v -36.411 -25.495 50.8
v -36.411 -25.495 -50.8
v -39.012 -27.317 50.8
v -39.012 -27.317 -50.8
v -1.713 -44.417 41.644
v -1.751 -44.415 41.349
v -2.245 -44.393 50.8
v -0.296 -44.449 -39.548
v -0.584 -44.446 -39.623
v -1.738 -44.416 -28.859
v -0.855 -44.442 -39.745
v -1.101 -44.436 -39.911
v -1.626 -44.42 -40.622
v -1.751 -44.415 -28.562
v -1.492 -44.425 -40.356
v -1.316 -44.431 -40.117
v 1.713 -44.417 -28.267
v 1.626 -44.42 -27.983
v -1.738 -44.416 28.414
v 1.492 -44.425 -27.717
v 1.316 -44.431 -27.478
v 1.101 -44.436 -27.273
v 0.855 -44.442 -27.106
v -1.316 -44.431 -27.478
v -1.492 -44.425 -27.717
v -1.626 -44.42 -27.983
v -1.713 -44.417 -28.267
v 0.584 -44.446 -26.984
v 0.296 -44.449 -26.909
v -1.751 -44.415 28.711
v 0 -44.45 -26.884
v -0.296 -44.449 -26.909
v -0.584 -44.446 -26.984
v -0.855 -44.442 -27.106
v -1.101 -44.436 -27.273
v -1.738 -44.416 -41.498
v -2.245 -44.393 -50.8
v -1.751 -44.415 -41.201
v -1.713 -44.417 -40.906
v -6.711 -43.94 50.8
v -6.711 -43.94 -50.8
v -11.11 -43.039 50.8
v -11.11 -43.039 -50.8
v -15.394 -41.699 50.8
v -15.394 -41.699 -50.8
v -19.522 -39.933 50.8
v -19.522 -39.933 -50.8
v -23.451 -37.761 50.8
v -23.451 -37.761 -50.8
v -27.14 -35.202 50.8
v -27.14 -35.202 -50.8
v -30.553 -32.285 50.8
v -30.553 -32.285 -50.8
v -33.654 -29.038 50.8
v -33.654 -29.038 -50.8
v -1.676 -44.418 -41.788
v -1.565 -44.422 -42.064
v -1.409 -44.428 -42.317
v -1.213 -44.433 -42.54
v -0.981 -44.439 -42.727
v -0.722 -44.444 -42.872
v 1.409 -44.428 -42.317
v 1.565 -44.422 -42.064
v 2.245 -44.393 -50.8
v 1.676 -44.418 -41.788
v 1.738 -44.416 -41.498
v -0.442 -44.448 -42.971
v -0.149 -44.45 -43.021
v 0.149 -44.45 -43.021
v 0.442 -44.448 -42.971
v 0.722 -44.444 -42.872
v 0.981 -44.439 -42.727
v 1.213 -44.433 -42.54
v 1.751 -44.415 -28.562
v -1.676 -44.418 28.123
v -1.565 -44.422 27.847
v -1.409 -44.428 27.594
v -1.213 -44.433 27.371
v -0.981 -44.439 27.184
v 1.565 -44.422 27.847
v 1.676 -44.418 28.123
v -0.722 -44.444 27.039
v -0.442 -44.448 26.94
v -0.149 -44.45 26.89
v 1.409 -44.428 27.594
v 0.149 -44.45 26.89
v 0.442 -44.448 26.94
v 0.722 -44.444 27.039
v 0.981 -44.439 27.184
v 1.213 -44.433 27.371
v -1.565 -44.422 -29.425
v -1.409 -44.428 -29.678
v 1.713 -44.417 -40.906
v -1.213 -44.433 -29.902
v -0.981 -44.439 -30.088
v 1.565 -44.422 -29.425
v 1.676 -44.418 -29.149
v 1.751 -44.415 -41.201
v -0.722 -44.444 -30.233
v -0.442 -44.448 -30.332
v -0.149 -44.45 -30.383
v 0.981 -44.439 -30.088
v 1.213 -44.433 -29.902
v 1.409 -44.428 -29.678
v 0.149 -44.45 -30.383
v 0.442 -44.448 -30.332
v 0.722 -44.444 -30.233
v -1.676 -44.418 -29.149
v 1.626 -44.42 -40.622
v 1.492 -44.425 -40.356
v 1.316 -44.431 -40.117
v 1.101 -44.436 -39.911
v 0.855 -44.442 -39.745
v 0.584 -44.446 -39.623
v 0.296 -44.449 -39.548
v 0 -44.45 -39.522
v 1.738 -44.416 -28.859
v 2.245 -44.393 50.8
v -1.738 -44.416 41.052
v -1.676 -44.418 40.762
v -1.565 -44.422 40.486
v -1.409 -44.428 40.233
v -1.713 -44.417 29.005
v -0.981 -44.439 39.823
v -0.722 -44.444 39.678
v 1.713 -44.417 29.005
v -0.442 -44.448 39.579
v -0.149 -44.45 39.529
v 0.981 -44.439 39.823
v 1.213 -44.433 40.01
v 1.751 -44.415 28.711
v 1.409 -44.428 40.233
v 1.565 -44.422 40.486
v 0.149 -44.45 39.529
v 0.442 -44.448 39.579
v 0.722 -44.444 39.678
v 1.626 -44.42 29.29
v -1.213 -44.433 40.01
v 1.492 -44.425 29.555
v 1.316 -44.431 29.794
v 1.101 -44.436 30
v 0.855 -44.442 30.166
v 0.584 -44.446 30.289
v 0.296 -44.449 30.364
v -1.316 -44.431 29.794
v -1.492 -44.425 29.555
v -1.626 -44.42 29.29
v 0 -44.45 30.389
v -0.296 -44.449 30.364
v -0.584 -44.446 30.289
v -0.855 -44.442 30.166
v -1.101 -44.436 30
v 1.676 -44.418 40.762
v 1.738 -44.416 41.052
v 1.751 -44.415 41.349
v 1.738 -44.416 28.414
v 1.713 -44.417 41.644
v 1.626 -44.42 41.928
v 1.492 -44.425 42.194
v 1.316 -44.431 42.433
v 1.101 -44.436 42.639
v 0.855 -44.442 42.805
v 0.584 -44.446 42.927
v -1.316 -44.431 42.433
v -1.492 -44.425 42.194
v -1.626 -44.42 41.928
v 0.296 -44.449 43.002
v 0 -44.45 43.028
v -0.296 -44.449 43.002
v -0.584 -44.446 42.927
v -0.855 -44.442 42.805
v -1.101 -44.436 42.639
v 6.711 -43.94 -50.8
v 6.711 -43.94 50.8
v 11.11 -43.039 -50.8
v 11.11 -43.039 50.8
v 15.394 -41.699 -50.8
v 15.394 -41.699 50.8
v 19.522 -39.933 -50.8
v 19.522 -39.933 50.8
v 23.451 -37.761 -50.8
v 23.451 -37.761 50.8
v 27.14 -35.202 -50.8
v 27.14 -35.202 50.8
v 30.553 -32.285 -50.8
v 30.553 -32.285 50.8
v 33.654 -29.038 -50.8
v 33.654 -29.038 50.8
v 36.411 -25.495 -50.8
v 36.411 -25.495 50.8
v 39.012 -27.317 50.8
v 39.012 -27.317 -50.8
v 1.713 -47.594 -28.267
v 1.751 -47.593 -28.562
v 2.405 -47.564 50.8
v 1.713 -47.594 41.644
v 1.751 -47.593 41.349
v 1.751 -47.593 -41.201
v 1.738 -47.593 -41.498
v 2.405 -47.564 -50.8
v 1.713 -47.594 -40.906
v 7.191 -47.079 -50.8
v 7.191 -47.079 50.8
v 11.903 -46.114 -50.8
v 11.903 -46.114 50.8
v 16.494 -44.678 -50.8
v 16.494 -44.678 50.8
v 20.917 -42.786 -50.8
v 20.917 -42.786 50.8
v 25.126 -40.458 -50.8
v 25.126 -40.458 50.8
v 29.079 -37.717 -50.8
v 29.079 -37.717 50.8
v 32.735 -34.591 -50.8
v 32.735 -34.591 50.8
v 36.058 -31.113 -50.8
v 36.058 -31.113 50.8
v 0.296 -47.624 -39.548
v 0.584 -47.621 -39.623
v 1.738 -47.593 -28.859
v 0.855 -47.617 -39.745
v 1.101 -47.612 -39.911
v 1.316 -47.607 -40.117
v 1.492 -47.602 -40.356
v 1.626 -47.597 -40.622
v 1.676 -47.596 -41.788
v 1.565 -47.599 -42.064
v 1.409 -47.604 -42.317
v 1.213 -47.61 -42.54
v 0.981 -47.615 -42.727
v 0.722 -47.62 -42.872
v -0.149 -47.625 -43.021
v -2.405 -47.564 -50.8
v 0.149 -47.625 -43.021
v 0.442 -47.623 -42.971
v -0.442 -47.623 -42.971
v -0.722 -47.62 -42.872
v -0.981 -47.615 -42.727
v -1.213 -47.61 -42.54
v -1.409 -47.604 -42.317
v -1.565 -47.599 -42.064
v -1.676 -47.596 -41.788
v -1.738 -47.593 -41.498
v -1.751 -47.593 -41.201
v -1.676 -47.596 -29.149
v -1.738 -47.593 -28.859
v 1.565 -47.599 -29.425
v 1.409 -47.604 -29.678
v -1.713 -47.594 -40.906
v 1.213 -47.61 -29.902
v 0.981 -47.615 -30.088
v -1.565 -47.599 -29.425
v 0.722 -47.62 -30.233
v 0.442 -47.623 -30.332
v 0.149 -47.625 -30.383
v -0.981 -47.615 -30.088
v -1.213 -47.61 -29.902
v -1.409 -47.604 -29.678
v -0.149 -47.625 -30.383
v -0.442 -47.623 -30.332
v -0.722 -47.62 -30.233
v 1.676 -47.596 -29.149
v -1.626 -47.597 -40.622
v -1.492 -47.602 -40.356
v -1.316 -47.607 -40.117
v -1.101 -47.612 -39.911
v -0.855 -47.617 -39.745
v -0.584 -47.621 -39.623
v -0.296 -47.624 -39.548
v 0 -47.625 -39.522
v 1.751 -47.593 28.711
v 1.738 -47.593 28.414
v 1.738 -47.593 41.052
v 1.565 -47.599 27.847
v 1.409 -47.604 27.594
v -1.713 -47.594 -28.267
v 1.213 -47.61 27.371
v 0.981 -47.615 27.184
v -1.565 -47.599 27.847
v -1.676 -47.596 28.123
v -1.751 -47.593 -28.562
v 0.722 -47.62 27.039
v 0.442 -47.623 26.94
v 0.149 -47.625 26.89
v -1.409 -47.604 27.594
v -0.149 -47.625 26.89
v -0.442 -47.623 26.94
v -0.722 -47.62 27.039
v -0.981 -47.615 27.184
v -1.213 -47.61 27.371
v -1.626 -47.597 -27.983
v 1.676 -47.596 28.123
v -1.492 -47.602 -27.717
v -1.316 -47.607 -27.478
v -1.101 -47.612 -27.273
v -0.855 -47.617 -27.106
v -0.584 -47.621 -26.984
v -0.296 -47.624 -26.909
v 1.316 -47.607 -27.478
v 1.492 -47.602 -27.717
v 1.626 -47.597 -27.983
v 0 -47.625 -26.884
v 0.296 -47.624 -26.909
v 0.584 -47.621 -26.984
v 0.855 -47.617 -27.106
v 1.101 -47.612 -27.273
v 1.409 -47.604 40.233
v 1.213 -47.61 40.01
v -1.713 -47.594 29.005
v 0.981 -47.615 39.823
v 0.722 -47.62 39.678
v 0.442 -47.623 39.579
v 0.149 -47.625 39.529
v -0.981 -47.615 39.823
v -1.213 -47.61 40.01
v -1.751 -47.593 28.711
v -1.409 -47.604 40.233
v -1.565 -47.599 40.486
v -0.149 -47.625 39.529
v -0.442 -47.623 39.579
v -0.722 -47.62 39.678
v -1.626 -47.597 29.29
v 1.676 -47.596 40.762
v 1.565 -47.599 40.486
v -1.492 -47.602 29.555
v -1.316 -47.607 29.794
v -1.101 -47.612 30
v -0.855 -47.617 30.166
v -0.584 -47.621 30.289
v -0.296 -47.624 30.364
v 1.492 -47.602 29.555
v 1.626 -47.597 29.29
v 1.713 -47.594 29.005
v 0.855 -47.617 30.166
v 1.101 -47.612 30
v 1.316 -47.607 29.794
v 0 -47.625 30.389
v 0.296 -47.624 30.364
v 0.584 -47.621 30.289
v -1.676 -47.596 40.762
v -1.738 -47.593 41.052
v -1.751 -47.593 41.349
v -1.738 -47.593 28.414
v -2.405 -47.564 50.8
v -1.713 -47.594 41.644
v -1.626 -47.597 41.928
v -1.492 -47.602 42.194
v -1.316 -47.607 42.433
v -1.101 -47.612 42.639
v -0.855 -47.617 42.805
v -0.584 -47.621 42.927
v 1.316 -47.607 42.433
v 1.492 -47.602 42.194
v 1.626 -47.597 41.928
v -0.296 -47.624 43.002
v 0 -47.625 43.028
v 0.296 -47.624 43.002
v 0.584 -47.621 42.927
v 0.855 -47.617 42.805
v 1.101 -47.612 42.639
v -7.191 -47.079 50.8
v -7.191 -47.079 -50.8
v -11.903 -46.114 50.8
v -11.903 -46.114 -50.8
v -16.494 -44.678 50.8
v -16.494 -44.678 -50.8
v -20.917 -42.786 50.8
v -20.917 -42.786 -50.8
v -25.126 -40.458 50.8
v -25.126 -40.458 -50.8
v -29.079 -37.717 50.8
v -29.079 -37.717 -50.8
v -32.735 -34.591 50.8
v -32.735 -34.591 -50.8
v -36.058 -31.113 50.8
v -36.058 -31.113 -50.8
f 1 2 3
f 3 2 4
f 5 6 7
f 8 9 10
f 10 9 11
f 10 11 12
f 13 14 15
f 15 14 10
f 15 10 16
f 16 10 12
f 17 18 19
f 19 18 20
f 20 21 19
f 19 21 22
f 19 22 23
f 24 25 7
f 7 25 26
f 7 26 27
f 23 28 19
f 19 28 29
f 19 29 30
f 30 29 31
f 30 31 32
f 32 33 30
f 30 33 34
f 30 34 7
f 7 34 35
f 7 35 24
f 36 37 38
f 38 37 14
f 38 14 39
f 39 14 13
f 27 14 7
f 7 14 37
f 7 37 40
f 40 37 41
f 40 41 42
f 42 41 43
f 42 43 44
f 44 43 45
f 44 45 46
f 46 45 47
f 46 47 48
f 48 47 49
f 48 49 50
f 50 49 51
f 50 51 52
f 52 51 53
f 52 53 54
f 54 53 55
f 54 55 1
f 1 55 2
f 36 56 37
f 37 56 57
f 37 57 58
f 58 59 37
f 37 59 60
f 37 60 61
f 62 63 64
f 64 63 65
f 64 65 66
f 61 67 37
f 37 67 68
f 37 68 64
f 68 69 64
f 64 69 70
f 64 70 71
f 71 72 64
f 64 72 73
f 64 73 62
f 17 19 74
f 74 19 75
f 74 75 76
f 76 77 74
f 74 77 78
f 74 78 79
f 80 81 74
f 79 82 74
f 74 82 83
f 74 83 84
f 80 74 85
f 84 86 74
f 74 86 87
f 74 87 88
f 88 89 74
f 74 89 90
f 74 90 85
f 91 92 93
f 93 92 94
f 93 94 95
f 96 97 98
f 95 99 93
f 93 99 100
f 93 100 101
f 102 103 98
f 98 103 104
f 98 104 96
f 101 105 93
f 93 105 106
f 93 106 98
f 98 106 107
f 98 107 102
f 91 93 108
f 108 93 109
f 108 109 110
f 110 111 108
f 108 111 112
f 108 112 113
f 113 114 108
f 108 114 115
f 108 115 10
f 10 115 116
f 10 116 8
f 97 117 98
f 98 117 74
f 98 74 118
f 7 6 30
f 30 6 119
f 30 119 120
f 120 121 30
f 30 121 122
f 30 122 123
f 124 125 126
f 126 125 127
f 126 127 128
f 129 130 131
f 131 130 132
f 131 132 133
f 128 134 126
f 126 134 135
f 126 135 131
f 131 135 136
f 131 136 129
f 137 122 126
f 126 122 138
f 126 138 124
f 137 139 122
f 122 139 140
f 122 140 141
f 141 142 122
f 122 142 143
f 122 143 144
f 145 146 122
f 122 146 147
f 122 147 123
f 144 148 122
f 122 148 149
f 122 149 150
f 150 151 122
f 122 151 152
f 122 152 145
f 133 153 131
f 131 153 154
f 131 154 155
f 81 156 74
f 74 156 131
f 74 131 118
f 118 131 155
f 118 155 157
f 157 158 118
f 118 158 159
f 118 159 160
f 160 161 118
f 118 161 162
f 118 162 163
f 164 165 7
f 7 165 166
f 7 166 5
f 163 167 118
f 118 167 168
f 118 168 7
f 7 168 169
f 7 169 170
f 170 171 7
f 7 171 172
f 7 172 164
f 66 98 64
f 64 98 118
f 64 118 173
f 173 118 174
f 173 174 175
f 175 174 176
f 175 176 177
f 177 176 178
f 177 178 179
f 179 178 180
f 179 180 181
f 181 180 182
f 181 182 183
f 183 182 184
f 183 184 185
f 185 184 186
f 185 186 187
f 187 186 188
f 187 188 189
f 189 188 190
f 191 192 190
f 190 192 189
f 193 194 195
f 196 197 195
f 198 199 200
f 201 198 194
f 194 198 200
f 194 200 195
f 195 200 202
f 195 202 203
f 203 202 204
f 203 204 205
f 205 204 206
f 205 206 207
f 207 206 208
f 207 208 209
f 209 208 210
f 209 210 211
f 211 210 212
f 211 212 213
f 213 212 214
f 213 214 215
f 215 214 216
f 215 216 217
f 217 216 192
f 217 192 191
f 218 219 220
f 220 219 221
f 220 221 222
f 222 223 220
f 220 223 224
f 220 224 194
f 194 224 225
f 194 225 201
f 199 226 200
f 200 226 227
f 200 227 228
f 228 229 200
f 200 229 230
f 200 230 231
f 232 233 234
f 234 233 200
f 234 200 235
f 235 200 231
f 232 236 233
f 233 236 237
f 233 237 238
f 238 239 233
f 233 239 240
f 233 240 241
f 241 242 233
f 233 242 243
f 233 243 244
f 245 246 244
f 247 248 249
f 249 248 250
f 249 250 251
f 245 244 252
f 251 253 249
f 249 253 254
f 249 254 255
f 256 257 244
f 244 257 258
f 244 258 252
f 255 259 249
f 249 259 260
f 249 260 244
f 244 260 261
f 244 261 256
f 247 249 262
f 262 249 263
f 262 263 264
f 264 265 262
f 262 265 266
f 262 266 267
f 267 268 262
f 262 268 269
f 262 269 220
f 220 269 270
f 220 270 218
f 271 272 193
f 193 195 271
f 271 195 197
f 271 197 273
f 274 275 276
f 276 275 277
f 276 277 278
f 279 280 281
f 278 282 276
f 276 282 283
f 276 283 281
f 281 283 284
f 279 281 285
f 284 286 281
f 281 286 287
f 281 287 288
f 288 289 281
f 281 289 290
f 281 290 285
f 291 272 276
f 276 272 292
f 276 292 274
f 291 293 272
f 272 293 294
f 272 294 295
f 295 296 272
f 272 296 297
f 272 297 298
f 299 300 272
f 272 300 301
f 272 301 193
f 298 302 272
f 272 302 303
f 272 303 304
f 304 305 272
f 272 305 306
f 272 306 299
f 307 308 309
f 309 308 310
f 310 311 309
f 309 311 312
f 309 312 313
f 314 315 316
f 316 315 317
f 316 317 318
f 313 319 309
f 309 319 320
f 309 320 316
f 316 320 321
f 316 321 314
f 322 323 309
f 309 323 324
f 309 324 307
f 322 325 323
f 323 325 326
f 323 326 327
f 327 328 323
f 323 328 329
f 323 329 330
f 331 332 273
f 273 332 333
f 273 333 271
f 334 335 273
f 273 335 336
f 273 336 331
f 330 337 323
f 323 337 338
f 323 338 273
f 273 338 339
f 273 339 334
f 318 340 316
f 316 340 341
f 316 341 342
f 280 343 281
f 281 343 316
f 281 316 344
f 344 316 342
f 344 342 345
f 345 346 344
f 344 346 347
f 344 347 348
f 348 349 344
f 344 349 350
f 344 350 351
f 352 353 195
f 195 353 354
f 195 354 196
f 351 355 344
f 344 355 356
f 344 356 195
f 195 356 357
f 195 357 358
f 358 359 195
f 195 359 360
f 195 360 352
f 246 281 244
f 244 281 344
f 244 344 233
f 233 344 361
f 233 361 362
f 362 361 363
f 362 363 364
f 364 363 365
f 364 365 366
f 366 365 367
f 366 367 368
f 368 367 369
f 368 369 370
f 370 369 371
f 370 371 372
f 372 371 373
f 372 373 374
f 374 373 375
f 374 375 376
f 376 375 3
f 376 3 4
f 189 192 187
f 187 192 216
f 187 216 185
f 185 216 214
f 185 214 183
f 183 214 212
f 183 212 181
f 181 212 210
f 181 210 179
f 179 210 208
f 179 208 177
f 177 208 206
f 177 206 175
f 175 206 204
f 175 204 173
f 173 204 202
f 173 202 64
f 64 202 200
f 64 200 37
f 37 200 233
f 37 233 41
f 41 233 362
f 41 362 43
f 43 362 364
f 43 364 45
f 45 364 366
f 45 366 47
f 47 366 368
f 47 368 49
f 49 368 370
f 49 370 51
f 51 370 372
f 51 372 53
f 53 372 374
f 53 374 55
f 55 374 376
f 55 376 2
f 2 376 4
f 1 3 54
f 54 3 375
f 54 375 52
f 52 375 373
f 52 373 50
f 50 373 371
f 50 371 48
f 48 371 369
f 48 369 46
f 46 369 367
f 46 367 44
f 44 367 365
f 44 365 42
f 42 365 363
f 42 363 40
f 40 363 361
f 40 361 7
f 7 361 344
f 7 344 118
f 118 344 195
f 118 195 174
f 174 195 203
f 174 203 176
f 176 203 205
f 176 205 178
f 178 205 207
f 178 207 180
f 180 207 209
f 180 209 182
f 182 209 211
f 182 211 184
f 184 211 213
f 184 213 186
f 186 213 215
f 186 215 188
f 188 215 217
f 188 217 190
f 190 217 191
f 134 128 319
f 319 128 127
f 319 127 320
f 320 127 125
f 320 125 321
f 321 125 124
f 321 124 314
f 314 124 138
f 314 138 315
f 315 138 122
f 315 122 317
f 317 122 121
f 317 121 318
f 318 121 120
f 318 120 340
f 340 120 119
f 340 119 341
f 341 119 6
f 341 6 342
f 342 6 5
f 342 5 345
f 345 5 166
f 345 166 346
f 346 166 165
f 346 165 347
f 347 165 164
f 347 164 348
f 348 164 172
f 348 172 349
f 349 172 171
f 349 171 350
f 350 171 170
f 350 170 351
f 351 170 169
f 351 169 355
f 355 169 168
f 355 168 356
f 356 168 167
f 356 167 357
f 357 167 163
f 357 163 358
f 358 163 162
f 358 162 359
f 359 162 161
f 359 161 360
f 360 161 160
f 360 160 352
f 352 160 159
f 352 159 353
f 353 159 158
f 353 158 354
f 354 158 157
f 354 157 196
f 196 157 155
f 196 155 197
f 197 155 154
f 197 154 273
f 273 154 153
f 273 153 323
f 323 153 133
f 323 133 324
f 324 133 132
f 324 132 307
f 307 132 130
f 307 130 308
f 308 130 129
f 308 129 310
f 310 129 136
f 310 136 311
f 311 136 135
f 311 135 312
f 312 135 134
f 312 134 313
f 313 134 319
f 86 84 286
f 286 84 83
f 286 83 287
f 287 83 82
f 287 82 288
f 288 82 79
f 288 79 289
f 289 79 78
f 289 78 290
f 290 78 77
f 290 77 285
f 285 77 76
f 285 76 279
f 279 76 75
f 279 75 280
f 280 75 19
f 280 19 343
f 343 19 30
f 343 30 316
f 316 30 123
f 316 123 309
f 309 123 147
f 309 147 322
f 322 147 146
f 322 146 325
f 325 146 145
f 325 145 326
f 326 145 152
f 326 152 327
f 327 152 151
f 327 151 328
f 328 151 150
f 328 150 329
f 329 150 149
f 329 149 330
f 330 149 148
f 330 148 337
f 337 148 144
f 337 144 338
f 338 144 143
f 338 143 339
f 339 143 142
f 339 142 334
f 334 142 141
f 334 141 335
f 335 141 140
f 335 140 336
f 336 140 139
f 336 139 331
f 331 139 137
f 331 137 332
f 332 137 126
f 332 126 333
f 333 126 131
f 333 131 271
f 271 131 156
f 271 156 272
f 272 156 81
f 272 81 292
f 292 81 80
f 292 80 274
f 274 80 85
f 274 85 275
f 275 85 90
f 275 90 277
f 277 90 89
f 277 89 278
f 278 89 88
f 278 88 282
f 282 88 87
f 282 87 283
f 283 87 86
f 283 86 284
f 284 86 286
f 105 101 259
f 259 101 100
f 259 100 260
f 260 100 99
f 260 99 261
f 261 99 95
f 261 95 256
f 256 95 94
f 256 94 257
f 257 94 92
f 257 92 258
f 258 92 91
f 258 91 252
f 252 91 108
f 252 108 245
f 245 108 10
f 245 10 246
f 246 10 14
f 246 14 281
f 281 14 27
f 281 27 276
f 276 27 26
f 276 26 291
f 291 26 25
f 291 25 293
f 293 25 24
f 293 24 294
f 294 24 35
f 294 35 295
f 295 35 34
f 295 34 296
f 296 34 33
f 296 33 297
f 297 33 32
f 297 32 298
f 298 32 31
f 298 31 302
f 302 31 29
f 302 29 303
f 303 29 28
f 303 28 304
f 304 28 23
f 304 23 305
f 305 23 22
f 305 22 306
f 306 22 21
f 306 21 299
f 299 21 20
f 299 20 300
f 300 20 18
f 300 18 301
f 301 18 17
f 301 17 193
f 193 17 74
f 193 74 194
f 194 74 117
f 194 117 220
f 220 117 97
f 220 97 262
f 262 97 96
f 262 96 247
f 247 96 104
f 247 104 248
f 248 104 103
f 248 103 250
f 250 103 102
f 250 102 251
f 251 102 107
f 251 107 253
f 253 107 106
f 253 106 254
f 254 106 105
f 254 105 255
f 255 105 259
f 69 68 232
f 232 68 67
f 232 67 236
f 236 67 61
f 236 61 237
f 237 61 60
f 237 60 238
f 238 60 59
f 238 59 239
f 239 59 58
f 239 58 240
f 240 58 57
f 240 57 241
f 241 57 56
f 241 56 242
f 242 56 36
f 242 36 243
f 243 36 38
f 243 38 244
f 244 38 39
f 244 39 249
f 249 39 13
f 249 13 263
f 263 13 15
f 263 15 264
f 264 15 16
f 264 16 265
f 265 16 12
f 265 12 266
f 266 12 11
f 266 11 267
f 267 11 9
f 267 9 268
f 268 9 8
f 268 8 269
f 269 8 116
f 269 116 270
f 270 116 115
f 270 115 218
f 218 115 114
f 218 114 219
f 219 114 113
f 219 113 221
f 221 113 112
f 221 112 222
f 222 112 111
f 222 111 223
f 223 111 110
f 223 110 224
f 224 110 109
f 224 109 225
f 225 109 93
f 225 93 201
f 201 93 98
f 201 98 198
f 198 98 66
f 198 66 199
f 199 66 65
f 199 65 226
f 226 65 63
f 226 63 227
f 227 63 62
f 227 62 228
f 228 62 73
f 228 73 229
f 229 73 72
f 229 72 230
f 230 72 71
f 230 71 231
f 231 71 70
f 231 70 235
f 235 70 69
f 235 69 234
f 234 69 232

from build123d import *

# Parameters (mm, degrees)
BOSS_EXTRUDE1_DEPTH      = 50.8
BOSS_EXTRUDE1_DEPTH_BACK = 50.8
SKETCH3_R                = 1.7526
CUT_EXTRUDE1_DEPTH       = 96


with BuildPart() as part:
    # Sketch1 → Boss-Extrude1 (new, two sides: drawn at the far end of the back side and taken through both)
    with BuildSketch(Plane.XY.offset(-BOSS_EXTRUDE1_DEPTH_BACK)):
        with BuildLine():
            ThreePointArc((36.411308369, -25.495472596), (0, -44.45), (-36.411308369, -25.495472596))
            Line((-36.411308369, -25.495472596), (-39.012116109, -27.316577781))
            ThreePointArc((-39.012116109, -27.316577781), (0, -47.625), (39.012116109, -27.316577781))
            Line((39.012116109, -27.316577781), (36.411308369, -25.495472596))
        make_face()
    extrude(amount=BOSS_EXTRUDE1_DEPTH + BOSS_EXTRUDE1_DEPTH_BACK)

    # Sketch3 → Cut-Extrude1 (cut)
    with BuildSketch(Plane(origin=(0, 0, 0), x_dir=(1, 0, 0), z_dir=(0, 1, 0))):
        with Locations((0, 41.275)):
            Circle(SKETCH3_R)
        with Locations((0, 28.636263)):
            Circle(SKETCH3_R)
        with Locations((0, -28.636263)):
            Circle(SKETCH3_R)
        with Locations((0, -41.275)):
            Circle(SKETCH3_R)
    extrude(amount=-CUT_EXTRUDE1_DEPTH, mode=Mode.SUBTRACT)


solid = part.part
